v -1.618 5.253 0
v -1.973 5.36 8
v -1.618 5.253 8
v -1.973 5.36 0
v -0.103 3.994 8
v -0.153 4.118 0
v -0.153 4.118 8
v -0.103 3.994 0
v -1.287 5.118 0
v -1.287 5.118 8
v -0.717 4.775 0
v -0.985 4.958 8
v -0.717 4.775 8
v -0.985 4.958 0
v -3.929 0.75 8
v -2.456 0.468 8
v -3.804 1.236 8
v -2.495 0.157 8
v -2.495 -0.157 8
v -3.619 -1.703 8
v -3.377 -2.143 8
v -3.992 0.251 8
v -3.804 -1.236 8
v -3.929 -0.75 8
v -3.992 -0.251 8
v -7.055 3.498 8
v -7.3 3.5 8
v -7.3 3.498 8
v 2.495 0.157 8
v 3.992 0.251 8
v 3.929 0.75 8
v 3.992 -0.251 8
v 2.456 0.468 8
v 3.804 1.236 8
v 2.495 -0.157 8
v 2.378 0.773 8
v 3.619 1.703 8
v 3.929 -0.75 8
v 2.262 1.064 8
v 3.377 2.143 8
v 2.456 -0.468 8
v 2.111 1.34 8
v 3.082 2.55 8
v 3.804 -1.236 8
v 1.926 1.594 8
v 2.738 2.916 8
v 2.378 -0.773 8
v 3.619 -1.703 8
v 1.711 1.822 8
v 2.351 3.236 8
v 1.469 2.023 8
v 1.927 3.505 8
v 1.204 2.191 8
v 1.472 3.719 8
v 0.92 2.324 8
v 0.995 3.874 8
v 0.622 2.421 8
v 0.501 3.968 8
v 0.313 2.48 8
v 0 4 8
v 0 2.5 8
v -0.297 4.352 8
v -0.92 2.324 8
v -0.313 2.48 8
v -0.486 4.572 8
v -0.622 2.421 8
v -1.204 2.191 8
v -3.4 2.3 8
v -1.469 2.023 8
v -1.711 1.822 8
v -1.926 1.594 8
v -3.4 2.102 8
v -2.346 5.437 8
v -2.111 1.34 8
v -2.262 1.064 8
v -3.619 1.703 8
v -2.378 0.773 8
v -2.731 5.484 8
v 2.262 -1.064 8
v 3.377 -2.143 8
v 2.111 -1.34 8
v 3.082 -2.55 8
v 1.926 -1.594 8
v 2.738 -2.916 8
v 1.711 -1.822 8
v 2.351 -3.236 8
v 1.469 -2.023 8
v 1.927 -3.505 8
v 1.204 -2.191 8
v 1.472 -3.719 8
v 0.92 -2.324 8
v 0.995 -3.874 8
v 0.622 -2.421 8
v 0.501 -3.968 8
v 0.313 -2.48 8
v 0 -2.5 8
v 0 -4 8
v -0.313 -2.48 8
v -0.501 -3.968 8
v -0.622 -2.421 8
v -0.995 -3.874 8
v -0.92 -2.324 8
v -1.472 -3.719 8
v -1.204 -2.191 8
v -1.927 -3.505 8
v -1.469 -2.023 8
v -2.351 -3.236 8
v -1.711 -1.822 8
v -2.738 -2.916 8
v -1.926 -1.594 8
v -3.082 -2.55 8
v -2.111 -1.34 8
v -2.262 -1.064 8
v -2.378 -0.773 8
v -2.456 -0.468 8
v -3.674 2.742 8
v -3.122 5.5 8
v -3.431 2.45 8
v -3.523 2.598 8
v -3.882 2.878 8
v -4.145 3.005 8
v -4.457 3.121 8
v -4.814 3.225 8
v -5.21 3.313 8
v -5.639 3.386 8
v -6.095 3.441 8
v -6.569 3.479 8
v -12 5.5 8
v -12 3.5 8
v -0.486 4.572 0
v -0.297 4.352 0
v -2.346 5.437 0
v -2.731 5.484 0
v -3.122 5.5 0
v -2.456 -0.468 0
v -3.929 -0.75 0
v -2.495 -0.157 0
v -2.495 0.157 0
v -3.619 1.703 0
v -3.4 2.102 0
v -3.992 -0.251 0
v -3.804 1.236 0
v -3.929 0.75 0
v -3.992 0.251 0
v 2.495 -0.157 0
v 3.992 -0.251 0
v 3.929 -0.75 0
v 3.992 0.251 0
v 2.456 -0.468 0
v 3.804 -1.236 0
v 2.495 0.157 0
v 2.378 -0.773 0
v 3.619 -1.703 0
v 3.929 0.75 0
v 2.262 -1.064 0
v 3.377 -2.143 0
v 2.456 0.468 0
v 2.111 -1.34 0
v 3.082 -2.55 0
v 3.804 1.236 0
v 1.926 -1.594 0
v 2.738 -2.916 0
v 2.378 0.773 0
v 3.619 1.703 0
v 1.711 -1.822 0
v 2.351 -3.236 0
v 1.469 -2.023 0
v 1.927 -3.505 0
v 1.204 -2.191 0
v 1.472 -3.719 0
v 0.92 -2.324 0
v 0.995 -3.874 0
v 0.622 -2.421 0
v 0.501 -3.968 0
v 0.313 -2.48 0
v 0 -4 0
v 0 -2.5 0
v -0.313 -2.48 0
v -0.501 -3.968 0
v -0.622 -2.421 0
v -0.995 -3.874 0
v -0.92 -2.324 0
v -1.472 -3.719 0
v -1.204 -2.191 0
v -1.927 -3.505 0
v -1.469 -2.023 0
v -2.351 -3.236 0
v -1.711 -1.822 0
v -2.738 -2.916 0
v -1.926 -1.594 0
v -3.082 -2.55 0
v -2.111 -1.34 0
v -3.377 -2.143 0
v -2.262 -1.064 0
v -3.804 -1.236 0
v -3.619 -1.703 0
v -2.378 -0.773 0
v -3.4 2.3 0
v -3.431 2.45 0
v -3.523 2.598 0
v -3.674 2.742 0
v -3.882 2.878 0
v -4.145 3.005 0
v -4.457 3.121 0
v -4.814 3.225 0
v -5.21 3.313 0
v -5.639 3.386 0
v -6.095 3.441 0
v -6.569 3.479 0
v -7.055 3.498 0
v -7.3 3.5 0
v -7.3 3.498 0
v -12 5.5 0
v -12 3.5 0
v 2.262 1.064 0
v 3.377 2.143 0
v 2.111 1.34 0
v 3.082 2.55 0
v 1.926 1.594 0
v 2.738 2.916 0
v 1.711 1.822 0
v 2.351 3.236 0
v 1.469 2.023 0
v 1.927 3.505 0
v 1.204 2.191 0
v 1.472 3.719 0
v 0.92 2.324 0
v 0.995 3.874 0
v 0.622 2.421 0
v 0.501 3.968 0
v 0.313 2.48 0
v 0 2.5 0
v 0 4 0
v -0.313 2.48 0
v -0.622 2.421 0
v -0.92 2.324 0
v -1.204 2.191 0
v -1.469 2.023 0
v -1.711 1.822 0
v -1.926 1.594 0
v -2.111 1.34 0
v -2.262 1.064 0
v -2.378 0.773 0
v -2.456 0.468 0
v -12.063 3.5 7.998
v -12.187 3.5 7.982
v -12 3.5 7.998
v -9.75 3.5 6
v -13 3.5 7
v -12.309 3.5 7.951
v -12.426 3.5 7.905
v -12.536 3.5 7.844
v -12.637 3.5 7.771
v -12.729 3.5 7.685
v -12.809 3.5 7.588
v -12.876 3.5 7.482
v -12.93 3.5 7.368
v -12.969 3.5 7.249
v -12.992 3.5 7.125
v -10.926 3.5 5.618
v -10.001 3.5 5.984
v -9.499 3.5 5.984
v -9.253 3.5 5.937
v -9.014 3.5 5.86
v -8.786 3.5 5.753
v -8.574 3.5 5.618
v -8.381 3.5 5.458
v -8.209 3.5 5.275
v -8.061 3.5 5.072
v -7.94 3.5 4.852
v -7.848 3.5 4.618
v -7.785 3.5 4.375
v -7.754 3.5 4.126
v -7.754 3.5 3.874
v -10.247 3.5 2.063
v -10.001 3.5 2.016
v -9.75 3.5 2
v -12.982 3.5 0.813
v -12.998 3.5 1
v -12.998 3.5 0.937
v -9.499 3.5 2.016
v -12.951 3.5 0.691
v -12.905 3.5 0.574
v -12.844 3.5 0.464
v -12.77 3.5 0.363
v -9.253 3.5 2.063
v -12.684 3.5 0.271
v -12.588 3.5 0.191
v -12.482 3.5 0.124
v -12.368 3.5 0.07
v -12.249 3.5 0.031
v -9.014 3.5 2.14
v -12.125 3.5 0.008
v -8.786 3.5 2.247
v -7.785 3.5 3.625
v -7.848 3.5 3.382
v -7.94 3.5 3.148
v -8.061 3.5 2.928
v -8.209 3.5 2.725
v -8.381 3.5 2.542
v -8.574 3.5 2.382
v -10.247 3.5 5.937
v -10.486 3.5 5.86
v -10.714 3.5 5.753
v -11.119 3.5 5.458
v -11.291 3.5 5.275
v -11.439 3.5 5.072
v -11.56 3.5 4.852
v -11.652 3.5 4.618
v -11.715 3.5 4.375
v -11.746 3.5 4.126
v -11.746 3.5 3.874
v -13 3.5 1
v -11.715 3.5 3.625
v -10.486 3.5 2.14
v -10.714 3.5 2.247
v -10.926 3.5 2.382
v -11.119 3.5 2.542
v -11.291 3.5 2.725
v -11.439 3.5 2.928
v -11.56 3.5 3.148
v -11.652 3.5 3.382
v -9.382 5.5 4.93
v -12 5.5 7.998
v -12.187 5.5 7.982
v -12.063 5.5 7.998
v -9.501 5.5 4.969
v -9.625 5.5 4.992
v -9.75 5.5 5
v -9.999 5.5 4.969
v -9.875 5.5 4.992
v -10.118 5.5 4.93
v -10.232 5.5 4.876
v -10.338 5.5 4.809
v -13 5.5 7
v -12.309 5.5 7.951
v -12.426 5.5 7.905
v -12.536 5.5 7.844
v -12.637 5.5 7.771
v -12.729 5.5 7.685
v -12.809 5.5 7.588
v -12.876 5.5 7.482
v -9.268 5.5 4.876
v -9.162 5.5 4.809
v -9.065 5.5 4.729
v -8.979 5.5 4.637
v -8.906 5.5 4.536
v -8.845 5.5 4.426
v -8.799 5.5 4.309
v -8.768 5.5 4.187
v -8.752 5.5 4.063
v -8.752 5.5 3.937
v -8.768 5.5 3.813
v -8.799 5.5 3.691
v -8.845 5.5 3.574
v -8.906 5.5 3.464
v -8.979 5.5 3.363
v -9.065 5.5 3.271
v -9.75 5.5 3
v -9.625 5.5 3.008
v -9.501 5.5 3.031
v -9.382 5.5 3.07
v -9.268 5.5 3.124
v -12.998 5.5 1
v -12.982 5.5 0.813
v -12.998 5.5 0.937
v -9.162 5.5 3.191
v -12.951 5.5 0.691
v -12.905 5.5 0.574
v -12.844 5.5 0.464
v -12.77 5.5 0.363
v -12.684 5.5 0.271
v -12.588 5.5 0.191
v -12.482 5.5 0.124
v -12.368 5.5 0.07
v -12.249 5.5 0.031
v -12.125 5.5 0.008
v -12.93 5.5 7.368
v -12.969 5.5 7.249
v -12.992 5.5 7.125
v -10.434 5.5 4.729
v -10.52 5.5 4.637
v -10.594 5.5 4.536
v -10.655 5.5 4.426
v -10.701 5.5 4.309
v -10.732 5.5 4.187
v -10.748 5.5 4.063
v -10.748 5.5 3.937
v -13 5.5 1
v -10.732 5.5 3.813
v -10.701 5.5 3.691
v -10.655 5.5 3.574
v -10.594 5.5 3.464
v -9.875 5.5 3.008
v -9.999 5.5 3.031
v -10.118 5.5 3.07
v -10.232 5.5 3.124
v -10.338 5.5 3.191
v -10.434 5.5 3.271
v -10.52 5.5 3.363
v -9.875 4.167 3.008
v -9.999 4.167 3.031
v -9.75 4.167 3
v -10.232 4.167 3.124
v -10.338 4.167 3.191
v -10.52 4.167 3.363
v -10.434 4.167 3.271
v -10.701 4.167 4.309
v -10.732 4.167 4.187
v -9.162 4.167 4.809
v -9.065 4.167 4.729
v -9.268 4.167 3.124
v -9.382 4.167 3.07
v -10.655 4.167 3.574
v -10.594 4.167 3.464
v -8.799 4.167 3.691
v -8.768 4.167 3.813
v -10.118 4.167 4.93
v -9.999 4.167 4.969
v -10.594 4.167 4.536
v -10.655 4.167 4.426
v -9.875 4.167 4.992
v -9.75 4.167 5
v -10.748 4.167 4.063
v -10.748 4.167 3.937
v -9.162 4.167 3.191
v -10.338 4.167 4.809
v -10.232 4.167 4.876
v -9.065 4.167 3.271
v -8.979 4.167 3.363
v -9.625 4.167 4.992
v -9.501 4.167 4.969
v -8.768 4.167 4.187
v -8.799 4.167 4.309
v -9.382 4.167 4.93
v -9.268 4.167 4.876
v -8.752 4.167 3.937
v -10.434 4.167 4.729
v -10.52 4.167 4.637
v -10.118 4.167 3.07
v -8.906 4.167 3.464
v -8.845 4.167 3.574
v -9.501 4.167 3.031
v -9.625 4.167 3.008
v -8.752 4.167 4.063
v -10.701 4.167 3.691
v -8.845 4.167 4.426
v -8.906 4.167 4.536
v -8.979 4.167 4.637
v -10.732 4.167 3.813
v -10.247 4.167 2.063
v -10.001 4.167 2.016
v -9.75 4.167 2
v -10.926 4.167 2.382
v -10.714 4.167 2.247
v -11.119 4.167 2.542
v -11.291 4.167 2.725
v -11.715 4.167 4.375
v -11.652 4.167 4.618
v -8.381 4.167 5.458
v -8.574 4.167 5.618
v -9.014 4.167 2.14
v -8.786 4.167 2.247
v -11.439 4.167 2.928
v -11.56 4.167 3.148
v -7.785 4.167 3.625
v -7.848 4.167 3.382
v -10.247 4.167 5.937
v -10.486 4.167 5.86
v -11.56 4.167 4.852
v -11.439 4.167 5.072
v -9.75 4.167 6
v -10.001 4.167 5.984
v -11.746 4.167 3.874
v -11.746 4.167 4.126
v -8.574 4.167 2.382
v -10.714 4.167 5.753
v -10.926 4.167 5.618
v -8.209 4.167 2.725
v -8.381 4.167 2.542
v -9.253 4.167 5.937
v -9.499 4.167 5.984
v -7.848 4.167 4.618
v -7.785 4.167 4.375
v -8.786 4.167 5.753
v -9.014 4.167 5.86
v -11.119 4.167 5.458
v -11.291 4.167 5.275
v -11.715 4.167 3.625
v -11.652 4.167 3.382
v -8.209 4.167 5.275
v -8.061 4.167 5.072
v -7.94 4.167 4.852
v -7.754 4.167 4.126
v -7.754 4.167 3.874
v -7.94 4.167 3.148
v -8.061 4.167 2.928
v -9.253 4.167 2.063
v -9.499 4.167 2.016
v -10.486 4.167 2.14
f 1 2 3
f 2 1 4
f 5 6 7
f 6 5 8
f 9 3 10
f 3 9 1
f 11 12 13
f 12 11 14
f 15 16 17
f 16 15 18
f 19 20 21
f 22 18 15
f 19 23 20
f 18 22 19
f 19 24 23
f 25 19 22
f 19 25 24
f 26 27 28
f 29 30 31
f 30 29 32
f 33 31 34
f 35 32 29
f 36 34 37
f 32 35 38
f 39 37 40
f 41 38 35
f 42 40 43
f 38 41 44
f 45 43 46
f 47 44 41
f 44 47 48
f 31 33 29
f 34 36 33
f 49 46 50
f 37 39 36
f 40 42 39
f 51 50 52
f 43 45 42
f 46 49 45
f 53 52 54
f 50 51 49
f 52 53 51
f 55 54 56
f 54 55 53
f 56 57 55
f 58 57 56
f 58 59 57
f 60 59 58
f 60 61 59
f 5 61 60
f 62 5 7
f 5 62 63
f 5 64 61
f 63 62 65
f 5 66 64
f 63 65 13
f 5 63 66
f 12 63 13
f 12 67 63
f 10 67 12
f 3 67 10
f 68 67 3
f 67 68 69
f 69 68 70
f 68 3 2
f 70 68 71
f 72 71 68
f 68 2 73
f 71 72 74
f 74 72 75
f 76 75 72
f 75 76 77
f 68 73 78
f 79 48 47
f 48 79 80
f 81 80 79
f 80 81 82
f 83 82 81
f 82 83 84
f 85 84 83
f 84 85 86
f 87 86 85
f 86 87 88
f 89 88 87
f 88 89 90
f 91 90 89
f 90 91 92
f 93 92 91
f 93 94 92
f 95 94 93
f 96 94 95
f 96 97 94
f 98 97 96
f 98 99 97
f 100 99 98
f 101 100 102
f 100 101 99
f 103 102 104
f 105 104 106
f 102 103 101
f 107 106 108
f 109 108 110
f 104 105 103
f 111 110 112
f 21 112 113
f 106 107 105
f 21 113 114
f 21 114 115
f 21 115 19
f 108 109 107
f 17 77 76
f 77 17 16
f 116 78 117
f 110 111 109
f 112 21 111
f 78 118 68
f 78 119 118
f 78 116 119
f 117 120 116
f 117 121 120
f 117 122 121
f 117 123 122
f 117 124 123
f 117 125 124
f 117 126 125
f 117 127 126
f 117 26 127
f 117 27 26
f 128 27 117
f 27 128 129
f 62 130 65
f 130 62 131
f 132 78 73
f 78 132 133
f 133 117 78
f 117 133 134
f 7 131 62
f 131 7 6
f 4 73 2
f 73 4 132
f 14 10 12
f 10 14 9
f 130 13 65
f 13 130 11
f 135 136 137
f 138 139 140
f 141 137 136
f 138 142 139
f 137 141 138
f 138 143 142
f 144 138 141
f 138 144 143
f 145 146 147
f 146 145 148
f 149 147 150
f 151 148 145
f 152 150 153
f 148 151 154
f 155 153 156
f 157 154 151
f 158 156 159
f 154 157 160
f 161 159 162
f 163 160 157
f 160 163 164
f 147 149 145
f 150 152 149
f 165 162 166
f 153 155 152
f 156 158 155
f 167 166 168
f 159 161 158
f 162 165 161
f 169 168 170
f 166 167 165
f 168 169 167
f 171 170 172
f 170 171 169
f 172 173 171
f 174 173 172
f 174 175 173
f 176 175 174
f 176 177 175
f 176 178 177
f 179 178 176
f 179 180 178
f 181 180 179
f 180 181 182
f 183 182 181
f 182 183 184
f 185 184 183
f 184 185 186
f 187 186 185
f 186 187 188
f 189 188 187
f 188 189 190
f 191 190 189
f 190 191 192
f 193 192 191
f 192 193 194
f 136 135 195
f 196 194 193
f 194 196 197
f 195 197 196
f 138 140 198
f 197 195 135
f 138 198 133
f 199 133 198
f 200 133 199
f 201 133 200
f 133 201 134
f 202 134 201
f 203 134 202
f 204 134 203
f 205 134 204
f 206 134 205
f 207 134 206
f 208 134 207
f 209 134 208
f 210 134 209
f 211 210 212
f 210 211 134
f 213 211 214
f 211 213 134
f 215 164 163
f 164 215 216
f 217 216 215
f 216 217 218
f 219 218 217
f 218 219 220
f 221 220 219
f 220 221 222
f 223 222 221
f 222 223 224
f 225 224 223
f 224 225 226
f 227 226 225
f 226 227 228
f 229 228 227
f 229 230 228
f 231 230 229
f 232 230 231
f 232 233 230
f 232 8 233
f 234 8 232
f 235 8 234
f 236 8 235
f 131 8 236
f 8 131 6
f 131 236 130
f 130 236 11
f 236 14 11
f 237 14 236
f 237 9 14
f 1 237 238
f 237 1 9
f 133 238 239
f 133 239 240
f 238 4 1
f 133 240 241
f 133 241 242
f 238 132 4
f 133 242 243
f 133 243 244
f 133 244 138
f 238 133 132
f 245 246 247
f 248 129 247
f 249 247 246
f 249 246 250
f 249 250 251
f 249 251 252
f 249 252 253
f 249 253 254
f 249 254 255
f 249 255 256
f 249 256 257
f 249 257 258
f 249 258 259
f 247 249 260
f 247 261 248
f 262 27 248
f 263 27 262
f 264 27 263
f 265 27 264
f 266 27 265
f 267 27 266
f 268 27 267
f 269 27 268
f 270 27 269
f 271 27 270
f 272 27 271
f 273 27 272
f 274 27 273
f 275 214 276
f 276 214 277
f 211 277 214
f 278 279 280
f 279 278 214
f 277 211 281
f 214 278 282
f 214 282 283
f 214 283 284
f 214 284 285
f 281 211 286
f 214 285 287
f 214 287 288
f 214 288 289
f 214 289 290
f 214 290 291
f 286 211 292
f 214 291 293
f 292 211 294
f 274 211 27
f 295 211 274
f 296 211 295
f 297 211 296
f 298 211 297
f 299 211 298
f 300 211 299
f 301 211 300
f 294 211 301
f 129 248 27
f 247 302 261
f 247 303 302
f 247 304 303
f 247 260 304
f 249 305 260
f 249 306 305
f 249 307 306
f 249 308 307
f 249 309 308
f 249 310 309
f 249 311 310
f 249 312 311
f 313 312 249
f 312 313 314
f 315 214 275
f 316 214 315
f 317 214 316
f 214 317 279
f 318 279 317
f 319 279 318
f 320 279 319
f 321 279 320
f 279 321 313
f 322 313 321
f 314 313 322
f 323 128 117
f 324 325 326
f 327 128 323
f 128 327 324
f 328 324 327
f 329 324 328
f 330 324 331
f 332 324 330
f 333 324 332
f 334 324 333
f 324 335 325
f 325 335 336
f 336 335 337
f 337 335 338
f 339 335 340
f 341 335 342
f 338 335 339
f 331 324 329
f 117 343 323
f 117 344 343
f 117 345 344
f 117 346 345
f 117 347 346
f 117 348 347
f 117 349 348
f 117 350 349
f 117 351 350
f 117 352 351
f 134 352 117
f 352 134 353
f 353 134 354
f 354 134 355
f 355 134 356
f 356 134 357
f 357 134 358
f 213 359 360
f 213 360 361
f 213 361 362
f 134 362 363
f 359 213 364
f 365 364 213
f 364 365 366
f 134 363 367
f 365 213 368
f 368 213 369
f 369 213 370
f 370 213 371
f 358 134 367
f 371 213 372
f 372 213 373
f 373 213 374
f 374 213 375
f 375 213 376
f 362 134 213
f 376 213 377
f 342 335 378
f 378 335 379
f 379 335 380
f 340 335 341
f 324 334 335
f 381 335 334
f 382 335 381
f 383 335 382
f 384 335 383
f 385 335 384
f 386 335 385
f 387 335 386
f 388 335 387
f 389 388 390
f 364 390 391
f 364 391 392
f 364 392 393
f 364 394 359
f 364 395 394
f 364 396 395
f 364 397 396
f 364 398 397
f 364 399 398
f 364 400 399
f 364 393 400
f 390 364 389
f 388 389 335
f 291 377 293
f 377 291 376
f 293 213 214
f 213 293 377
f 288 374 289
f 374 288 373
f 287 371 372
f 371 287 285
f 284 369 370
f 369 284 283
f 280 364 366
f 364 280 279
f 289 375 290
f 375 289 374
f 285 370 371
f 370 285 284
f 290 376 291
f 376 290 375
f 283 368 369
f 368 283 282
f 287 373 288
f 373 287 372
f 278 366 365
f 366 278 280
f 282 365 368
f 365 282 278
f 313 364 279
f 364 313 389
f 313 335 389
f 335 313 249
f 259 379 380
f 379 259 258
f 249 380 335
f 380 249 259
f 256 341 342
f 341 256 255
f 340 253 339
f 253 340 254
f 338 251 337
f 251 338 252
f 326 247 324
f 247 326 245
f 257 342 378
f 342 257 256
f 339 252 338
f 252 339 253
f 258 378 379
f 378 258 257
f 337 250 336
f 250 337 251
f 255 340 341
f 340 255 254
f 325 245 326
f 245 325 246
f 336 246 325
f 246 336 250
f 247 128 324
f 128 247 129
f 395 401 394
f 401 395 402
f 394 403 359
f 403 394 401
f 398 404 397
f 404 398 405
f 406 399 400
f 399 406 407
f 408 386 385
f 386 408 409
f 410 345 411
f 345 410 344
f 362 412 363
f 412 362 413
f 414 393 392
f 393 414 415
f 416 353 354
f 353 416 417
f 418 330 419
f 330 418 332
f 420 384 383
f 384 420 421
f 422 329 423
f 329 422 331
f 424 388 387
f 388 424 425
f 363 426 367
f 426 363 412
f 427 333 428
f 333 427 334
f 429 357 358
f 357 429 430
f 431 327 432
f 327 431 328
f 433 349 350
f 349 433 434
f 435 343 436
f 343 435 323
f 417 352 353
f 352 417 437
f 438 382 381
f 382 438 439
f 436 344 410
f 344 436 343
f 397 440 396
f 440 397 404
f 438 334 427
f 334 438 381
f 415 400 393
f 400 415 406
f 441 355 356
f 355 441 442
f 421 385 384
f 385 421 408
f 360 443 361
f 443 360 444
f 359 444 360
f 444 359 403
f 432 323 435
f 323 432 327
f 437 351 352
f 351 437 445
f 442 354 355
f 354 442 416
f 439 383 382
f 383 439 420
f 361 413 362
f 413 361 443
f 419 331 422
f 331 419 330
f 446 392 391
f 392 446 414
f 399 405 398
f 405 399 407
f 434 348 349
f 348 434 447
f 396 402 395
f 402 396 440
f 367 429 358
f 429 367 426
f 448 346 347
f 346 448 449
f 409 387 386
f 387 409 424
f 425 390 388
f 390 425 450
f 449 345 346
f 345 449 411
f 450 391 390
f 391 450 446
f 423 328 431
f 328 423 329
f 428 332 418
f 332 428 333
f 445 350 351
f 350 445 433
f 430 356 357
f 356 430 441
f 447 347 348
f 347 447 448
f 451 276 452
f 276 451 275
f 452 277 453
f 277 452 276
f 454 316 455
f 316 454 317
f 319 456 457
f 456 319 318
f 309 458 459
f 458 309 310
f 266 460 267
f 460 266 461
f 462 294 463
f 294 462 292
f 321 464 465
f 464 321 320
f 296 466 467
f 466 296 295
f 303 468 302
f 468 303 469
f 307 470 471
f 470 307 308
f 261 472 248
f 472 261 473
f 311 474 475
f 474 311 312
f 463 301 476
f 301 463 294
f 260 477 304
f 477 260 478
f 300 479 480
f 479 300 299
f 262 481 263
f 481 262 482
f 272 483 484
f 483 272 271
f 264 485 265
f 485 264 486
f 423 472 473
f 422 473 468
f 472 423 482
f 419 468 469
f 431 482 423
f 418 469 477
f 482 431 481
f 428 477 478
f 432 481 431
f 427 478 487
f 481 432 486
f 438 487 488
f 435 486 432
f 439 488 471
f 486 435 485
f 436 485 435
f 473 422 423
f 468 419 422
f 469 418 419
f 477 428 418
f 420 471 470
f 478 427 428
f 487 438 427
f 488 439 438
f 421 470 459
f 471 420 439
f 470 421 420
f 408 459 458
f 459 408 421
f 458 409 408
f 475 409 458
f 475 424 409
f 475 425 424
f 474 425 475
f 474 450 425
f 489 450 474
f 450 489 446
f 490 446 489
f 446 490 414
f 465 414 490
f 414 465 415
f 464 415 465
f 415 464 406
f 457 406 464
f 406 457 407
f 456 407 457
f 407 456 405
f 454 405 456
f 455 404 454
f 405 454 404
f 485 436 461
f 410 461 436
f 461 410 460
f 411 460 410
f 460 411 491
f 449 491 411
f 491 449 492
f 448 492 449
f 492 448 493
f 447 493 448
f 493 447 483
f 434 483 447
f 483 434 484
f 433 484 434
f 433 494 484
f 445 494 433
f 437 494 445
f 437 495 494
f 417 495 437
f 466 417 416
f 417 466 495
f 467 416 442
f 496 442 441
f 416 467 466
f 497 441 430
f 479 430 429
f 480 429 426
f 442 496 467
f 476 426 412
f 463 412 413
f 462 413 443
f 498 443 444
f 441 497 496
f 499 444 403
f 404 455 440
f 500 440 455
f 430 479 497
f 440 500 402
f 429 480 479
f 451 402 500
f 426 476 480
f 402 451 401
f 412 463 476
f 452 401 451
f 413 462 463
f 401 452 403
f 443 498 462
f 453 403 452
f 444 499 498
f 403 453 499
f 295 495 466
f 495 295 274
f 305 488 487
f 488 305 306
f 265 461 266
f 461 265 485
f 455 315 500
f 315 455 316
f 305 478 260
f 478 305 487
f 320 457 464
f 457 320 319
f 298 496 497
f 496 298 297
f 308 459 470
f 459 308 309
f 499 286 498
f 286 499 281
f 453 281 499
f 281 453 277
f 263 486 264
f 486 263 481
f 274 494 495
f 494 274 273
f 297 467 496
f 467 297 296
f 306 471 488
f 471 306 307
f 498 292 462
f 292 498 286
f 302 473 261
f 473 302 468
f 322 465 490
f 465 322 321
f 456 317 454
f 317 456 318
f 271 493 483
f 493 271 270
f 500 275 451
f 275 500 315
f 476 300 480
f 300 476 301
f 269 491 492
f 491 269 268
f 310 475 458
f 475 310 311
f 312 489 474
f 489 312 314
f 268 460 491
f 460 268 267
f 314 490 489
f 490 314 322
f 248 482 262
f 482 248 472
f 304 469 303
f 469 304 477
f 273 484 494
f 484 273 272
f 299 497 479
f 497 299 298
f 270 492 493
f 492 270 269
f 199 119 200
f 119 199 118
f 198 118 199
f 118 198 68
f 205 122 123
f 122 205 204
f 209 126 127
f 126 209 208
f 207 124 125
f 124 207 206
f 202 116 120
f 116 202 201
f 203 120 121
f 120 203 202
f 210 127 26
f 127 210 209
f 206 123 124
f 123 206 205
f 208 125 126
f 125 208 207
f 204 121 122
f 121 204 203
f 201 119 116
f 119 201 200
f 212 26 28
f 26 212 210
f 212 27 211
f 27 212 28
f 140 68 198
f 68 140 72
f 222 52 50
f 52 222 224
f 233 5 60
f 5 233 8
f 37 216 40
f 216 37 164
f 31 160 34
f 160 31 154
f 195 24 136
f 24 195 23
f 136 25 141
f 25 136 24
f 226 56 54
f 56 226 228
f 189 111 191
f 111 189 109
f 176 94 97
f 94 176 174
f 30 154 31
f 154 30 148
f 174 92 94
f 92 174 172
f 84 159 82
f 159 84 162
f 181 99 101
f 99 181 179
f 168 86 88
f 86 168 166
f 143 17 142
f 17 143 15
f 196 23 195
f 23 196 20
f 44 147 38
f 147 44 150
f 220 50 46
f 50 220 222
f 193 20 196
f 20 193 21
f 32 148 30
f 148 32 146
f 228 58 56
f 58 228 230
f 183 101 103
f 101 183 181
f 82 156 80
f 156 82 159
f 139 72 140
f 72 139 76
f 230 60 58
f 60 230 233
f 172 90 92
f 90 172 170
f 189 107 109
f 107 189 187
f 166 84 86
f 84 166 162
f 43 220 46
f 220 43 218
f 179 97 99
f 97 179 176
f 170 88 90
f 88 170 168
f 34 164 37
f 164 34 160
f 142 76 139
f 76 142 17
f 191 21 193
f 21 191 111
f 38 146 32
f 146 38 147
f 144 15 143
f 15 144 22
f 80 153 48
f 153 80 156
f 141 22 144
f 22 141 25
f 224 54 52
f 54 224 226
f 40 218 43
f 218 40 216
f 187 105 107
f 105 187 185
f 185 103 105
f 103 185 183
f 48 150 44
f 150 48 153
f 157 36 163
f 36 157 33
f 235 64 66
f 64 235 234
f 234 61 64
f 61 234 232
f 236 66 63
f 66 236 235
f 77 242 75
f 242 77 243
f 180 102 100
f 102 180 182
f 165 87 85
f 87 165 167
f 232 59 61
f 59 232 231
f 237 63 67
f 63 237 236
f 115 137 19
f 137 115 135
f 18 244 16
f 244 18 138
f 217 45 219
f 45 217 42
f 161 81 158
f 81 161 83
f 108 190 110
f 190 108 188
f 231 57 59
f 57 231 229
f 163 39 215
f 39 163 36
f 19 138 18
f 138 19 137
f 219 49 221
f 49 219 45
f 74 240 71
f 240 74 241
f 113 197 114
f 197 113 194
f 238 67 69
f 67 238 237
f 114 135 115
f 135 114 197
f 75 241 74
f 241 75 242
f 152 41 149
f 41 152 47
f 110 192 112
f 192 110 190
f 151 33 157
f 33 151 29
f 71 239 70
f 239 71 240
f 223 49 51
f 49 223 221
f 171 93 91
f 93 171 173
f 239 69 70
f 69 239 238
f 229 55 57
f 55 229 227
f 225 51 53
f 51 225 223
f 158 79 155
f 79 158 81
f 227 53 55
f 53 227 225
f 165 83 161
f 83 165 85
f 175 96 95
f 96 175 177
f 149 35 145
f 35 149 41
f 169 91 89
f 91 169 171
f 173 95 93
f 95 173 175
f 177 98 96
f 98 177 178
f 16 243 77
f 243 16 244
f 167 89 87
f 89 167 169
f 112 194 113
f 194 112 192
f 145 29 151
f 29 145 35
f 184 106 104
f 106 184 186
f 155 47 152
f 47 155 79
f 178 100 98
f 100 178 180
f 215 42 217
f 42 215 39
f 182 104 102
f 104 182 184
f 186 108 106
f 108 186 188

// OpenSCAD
height		= 8;
screw_width	= 2;

inner_cyl_dia 	= 5;
outer_cyl_dia	= 8;
cyl_diff	= outer_cyl_dia - inner_cyl_dia;
cyl_45_vect	= sqrt(pow(outer_cyl_dia / 2, 2) - pow(inner_cyl_dia / 2, 2));
arm_len		= 9 + outer_cyl_dia / 2;
arm_width	= cyl_diff * 2/3;

$fn = $preview ? 25 : 50;

rotate([0, 0, 90]) {
	translate([inner_cyl_dia / 2 + cyl_diff - arm_width, 0, 0]) difference() {
		cube([arm_width, arm_len, height]);

		difference() {
			cube([arm_width, cyl_45_vect, height]);

			intersection() {
				translate([0, cyl_45_vect, 0]) scale([1, cyl_45_vect / arm_width, 1]) cylinder(height, r = arm_width);
				cube([arm_width, cyl_45_vect, height]);
			}
		}

		translate([0, arm_len * 0.75, height / 2]) {
			rotate([0, 90, 0]) {
				cylinder(arm_width, r = screw_width / 2);
				cylinder(arm_width * 1/3, r = screw_width);

				translate([0, arm_len * 0.25 - screw_width / 2, 0]) {
					translate([height / 2 - screw_width / 2, 0, 0]) difference() {
						cube([screw_width / 2, screw_width / 2, arm_width]);

						intersection() {
							cylinder(arm_width, r = screw_width / 2);
							cube([screw_width / 2, screw_width / 2, arm_width]);
						}
					}
					translate([-height / 2 + screw_width / 2, 0, 0]) rotate([0, 0, 90]) difference() {
						cube([screw_width / 2, screw_width / 2, arm_width]);

						intersection() {
							cylinder(arm_width, r = screw_width / 2);
							cube([screw_width / 2, screw_width / 2, arm_width]);
						}
					}
				}
			}
		}
	}

	in_corn_rad = cyl_diff;
	translate([inner_cyl_dia / 2 + cyl_diff - arm_width, outer_cyl_dia / 2 + in_corn_rad, 0]) {
		translate([-arm_width / 2 - 0.2, 0.3, 0]) scale([0.4, 1.3, 1]) rotate([0, 0, 270]) difference() {
			#cube([in_corn_rad, in_corn_rad, height]);

			intersection() {
				cylinder(height, r = in_corn_rad);
				cube([in_corn_rad, in_corn_rad, height]);
			}
		}

		translate([0, -in_corn_rad * 1.2, 0]) rotate([0, 0, 180]) cube([cyl_45_vect / 2, cyl_45_vect / 2, height]);
	}

	difference() {
		cylinder(height, r = outer_cyl_dia / 2);
		cylinder(height, r = inner_cyl_dia / 2);
	}
}
